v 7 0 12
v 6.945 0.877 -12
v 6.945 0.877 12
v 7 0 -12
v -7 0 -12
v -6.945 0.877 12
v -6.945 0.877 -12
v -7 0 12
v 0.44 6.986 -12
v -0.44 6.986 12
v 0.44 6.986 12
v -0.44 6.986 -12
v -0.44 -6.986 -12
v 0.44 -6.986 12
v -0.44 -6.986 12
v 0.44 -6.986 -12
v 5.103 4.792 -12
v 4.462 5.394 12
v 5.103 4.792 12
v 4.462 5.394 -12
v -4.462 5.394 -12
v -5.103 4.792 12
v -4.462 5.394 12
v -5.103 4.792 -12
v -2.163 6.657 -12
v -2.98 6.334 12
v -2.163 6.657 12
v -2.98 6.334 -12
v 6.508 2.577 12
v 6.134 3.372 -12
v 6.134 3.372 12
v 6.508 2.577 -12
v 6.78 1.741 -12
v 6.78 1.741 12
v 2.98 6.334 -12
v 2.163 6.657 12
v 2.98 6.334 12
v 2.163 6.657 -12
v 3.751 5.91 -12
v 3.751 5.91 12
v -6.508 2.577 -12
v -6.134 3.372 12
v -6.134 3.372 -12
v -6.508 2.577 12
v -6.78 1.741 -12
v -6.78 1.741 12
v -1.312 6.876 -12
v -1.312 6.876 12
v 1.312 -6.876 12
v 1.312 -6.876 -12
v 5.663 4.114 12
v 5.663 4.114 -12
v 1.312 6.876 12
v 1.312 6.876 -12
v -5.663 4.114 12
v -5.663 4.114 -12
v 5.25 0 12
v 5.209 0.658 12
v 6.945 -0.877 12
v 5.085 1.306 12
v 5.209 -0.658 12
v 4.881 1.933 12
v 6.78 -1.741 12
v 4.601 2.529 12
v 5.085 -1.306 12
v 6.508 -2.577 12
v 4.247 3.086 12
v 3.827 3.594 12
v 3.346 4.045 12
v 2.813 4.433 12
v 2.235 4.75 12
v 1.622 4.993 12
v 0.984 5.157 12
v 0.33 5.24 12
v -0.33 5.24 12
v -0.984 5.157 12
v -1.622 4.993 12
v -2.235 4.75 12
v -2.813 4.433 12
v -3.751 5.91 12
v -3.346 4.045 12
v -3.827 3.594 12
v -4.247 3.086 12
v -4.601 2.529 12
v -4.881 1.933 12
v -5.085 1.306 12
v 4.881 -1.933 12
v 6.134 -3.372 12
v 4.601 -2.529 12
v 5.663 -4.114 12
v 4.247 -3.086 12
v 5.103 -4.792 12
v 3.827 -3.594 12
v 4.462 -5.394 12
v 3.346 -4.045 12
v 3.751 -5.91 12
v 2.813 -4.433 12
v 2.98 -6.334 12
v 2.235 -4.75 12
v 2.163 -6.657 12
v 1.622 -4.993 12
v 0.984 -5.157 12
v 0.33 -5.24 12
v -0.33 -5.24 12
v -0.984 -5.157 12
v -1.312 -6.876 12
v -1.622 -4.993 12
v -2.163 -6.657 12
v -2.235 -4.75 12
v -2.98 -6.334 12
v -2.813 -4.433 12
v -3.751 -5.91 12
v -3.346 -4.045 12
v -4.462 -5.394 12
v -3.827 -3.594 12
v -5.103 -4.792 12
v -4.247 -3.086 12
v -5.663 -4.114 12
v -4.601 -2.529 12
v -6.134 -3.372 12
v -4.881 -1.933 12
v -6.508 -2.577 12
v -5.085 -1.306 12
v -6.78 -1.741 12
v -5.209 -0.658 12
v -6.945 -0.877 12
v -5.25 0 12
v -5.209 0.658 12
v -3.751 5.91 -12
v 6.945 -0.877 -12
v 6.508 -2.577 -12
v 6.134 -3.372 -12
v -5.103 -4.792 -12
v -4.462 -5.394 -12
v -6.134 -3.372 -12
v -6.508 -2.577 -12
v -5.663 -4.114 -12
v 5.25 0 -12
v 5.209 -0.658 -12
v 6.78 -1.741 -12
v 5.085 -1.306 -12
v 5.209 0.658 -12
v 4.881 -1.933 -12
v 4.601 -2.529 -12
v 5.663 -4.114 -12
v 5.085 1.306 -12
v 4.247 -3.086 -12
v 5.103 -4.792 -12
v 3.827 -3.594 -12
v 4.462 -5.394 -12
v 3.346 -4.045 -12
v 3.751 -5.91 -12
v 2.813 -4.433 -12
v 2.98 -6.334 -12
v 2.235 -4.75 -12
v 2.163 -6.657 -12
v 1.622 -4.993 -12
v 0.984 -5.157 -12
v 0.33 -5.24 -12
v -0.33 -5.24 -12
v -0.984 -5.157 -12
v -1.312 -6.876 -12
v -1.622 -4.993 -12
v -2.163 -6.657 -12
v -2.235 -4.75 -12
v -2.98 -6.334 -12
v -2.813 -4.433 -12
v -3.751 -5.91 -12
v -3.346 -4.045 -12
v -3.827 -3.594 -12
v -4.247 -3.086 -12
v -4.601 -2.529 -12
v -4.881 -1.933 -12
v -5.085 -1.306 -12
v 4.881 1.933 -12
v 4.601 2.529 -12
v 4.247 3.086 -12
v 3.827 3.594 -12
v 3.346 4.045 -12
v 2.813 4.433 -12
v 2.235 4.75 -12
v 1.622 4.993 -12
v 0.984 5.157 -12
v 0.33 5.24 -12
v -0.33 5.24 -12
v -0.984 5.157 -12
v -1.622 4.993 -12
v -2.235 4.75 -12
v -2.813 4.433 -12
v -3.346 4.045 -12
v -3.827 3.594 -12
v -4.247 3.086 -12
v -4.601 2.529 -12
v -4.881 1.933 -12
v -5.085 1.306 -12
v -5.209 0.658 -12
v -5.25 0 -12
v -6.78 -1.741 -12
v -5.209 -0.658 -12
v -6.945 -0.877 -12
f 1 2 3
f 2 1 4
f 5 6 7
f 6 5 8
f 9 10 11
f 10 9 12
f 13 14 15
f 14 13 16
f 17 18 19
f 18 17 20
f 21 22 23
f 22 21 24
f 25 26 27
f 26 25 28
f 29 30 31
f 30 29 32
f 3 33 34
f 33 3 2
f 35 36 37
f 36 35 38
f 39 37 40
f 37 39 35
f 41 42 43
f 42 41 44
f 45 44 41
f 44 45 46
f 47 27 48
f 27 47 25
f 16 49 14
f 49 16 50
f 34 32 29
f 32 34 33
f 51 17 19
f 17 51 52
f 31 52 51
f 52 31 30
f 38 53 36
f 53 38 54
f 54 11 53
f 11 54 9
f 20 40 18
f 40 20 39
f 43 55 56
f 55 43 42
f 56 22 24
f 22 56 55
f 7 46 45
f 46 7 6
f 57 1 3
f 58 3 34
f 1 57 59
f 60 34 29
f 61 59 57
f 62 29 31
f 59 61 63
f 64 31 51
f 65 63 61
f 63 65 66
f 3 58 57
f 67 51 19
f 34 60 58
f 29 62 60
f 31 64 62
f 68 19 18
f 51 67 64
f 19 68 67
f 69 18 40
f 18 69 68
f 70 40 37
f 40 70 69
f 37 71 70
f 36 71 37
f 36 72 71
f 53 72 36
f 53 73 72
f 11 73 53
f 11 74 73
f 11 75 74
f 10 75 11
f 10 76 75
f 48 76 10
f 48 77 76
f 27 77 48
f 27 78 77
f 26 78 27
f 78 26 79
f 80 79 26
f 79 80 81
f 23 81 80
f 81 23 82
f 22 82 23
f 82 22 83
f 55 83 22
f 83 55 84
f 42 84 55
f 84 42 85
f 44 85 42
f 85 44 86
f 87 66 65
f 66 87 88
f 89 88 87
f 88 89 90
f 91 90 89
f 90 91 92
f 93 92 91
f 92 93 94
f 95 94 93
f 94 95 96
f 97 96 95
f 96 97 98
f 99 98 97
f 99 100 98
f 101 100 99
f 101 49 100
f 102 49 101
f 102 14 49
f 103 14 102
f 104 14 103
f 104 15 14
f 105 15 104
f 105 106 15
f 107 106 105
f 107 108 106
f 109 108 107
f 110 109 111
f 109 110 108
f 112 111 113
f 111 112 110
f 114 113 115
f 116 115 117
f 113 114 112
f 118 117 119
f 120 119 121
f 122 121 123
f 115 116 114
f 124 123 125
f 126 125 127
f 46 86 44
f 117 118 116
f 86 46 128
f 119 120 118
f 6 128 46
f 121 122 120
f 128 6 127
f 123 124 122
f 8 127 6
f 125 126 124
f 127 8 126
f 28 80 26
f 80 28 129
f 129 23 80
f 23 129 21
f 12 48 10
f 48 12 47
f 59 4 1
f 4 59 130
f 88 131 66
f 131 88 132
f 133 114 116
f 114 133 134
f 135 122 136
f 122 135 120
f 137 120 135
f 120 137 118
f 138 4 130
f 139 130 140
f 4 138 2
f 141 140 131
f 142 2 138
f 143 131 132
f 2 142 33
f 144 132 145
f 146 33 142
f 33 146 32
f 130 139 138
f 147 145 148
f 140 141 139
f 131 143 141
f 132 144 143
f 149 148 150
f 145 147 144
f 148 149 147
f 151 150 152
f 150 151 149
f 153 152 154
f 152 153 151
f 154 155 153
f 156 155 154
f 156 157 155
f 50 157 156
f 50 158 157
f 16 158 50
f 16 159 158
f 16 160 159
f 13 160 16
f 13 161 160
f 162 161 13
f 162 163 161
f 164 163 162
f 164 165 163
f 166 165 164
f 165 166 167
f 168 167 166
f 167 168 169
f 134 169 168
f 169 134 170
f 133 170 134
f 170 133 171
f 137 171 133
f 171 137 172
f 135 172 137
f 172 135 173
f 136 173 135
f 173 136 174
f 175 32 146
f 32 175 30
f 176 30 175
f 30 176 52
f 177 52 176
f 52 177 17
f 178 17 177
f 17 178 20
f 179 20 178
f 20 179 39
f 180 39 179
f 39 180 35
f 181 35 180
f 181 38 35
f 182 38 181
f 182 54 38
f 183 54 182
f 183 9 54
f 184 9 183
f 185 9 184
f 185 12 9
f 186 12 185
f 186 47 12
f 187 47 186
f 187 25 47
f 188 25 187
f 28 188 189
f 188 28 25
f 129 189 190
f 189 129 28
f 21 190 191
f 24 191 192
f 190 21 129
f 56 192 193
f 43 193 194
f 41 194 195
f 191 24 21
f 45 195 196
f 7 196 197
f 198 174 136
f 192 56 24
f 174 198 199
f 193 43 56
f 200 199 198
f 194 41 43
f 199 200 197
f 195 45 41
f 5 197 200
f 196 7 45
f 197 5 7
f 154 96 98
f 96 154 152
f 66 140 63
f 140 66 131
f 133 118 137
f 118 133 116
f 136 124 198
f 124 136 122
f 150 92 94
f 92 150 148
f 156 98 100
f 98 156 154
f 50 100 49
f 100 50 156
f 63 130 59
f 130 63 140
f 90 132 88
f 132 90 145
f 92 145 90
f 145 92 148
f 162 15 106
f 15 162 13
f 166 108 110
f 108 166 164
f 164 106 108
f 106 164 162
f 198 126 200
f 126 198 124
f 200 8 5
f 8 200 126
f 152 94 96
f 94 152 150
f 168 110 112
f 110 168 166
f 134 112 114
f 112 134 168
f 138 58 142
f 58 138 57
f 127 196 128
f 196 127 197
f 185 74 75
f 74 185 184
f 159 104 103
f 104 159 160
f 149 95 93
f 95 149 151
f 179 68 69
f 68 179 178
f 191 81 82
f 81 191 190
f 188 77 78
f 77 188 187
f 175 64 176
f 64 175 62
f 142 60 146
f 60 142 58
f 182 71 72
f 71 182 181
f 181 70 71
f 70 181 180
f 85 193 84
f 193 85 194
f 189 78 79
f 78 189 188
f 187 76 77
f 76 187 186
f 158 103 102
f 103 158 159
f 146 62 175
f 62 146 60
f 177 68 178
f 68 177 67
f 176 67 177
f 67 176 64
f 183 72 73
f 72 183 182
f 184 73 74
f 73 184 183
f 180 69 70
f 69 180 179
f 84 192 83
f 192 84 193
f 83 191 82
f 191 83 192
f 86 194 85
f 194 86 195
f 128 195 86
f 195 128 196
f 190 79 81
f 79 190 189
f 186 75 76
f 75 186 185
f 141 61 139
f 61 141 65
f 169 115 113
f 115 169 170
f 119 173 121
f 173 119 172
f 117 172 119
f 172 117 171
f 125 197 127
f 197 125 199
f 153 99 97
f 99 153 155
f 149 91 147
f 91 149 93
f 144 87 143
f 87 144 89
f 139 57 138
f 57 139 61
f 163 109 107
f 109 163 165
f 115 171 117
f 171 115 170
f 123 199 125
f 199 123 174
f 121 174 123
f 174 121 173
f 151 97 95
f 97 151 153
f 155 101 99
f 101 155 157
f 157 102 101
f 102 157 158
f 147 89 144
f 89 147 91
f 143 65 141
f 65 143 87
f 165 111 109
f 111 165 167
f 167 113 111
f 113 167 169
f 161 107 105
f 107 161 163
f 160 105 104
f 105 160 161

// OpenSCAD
$fn = 50;


difference() {
	union() {
		translate(v = [0, 0, -12.0000000000]) {
			cylinder(h = 24, r = 7.0000000000);
		}
	}
	union() {
		translate(v = [0, 0, -100.0000000000]) {
			cylinder(h = 200, r = 5.2500000000);
		}
	}
}
